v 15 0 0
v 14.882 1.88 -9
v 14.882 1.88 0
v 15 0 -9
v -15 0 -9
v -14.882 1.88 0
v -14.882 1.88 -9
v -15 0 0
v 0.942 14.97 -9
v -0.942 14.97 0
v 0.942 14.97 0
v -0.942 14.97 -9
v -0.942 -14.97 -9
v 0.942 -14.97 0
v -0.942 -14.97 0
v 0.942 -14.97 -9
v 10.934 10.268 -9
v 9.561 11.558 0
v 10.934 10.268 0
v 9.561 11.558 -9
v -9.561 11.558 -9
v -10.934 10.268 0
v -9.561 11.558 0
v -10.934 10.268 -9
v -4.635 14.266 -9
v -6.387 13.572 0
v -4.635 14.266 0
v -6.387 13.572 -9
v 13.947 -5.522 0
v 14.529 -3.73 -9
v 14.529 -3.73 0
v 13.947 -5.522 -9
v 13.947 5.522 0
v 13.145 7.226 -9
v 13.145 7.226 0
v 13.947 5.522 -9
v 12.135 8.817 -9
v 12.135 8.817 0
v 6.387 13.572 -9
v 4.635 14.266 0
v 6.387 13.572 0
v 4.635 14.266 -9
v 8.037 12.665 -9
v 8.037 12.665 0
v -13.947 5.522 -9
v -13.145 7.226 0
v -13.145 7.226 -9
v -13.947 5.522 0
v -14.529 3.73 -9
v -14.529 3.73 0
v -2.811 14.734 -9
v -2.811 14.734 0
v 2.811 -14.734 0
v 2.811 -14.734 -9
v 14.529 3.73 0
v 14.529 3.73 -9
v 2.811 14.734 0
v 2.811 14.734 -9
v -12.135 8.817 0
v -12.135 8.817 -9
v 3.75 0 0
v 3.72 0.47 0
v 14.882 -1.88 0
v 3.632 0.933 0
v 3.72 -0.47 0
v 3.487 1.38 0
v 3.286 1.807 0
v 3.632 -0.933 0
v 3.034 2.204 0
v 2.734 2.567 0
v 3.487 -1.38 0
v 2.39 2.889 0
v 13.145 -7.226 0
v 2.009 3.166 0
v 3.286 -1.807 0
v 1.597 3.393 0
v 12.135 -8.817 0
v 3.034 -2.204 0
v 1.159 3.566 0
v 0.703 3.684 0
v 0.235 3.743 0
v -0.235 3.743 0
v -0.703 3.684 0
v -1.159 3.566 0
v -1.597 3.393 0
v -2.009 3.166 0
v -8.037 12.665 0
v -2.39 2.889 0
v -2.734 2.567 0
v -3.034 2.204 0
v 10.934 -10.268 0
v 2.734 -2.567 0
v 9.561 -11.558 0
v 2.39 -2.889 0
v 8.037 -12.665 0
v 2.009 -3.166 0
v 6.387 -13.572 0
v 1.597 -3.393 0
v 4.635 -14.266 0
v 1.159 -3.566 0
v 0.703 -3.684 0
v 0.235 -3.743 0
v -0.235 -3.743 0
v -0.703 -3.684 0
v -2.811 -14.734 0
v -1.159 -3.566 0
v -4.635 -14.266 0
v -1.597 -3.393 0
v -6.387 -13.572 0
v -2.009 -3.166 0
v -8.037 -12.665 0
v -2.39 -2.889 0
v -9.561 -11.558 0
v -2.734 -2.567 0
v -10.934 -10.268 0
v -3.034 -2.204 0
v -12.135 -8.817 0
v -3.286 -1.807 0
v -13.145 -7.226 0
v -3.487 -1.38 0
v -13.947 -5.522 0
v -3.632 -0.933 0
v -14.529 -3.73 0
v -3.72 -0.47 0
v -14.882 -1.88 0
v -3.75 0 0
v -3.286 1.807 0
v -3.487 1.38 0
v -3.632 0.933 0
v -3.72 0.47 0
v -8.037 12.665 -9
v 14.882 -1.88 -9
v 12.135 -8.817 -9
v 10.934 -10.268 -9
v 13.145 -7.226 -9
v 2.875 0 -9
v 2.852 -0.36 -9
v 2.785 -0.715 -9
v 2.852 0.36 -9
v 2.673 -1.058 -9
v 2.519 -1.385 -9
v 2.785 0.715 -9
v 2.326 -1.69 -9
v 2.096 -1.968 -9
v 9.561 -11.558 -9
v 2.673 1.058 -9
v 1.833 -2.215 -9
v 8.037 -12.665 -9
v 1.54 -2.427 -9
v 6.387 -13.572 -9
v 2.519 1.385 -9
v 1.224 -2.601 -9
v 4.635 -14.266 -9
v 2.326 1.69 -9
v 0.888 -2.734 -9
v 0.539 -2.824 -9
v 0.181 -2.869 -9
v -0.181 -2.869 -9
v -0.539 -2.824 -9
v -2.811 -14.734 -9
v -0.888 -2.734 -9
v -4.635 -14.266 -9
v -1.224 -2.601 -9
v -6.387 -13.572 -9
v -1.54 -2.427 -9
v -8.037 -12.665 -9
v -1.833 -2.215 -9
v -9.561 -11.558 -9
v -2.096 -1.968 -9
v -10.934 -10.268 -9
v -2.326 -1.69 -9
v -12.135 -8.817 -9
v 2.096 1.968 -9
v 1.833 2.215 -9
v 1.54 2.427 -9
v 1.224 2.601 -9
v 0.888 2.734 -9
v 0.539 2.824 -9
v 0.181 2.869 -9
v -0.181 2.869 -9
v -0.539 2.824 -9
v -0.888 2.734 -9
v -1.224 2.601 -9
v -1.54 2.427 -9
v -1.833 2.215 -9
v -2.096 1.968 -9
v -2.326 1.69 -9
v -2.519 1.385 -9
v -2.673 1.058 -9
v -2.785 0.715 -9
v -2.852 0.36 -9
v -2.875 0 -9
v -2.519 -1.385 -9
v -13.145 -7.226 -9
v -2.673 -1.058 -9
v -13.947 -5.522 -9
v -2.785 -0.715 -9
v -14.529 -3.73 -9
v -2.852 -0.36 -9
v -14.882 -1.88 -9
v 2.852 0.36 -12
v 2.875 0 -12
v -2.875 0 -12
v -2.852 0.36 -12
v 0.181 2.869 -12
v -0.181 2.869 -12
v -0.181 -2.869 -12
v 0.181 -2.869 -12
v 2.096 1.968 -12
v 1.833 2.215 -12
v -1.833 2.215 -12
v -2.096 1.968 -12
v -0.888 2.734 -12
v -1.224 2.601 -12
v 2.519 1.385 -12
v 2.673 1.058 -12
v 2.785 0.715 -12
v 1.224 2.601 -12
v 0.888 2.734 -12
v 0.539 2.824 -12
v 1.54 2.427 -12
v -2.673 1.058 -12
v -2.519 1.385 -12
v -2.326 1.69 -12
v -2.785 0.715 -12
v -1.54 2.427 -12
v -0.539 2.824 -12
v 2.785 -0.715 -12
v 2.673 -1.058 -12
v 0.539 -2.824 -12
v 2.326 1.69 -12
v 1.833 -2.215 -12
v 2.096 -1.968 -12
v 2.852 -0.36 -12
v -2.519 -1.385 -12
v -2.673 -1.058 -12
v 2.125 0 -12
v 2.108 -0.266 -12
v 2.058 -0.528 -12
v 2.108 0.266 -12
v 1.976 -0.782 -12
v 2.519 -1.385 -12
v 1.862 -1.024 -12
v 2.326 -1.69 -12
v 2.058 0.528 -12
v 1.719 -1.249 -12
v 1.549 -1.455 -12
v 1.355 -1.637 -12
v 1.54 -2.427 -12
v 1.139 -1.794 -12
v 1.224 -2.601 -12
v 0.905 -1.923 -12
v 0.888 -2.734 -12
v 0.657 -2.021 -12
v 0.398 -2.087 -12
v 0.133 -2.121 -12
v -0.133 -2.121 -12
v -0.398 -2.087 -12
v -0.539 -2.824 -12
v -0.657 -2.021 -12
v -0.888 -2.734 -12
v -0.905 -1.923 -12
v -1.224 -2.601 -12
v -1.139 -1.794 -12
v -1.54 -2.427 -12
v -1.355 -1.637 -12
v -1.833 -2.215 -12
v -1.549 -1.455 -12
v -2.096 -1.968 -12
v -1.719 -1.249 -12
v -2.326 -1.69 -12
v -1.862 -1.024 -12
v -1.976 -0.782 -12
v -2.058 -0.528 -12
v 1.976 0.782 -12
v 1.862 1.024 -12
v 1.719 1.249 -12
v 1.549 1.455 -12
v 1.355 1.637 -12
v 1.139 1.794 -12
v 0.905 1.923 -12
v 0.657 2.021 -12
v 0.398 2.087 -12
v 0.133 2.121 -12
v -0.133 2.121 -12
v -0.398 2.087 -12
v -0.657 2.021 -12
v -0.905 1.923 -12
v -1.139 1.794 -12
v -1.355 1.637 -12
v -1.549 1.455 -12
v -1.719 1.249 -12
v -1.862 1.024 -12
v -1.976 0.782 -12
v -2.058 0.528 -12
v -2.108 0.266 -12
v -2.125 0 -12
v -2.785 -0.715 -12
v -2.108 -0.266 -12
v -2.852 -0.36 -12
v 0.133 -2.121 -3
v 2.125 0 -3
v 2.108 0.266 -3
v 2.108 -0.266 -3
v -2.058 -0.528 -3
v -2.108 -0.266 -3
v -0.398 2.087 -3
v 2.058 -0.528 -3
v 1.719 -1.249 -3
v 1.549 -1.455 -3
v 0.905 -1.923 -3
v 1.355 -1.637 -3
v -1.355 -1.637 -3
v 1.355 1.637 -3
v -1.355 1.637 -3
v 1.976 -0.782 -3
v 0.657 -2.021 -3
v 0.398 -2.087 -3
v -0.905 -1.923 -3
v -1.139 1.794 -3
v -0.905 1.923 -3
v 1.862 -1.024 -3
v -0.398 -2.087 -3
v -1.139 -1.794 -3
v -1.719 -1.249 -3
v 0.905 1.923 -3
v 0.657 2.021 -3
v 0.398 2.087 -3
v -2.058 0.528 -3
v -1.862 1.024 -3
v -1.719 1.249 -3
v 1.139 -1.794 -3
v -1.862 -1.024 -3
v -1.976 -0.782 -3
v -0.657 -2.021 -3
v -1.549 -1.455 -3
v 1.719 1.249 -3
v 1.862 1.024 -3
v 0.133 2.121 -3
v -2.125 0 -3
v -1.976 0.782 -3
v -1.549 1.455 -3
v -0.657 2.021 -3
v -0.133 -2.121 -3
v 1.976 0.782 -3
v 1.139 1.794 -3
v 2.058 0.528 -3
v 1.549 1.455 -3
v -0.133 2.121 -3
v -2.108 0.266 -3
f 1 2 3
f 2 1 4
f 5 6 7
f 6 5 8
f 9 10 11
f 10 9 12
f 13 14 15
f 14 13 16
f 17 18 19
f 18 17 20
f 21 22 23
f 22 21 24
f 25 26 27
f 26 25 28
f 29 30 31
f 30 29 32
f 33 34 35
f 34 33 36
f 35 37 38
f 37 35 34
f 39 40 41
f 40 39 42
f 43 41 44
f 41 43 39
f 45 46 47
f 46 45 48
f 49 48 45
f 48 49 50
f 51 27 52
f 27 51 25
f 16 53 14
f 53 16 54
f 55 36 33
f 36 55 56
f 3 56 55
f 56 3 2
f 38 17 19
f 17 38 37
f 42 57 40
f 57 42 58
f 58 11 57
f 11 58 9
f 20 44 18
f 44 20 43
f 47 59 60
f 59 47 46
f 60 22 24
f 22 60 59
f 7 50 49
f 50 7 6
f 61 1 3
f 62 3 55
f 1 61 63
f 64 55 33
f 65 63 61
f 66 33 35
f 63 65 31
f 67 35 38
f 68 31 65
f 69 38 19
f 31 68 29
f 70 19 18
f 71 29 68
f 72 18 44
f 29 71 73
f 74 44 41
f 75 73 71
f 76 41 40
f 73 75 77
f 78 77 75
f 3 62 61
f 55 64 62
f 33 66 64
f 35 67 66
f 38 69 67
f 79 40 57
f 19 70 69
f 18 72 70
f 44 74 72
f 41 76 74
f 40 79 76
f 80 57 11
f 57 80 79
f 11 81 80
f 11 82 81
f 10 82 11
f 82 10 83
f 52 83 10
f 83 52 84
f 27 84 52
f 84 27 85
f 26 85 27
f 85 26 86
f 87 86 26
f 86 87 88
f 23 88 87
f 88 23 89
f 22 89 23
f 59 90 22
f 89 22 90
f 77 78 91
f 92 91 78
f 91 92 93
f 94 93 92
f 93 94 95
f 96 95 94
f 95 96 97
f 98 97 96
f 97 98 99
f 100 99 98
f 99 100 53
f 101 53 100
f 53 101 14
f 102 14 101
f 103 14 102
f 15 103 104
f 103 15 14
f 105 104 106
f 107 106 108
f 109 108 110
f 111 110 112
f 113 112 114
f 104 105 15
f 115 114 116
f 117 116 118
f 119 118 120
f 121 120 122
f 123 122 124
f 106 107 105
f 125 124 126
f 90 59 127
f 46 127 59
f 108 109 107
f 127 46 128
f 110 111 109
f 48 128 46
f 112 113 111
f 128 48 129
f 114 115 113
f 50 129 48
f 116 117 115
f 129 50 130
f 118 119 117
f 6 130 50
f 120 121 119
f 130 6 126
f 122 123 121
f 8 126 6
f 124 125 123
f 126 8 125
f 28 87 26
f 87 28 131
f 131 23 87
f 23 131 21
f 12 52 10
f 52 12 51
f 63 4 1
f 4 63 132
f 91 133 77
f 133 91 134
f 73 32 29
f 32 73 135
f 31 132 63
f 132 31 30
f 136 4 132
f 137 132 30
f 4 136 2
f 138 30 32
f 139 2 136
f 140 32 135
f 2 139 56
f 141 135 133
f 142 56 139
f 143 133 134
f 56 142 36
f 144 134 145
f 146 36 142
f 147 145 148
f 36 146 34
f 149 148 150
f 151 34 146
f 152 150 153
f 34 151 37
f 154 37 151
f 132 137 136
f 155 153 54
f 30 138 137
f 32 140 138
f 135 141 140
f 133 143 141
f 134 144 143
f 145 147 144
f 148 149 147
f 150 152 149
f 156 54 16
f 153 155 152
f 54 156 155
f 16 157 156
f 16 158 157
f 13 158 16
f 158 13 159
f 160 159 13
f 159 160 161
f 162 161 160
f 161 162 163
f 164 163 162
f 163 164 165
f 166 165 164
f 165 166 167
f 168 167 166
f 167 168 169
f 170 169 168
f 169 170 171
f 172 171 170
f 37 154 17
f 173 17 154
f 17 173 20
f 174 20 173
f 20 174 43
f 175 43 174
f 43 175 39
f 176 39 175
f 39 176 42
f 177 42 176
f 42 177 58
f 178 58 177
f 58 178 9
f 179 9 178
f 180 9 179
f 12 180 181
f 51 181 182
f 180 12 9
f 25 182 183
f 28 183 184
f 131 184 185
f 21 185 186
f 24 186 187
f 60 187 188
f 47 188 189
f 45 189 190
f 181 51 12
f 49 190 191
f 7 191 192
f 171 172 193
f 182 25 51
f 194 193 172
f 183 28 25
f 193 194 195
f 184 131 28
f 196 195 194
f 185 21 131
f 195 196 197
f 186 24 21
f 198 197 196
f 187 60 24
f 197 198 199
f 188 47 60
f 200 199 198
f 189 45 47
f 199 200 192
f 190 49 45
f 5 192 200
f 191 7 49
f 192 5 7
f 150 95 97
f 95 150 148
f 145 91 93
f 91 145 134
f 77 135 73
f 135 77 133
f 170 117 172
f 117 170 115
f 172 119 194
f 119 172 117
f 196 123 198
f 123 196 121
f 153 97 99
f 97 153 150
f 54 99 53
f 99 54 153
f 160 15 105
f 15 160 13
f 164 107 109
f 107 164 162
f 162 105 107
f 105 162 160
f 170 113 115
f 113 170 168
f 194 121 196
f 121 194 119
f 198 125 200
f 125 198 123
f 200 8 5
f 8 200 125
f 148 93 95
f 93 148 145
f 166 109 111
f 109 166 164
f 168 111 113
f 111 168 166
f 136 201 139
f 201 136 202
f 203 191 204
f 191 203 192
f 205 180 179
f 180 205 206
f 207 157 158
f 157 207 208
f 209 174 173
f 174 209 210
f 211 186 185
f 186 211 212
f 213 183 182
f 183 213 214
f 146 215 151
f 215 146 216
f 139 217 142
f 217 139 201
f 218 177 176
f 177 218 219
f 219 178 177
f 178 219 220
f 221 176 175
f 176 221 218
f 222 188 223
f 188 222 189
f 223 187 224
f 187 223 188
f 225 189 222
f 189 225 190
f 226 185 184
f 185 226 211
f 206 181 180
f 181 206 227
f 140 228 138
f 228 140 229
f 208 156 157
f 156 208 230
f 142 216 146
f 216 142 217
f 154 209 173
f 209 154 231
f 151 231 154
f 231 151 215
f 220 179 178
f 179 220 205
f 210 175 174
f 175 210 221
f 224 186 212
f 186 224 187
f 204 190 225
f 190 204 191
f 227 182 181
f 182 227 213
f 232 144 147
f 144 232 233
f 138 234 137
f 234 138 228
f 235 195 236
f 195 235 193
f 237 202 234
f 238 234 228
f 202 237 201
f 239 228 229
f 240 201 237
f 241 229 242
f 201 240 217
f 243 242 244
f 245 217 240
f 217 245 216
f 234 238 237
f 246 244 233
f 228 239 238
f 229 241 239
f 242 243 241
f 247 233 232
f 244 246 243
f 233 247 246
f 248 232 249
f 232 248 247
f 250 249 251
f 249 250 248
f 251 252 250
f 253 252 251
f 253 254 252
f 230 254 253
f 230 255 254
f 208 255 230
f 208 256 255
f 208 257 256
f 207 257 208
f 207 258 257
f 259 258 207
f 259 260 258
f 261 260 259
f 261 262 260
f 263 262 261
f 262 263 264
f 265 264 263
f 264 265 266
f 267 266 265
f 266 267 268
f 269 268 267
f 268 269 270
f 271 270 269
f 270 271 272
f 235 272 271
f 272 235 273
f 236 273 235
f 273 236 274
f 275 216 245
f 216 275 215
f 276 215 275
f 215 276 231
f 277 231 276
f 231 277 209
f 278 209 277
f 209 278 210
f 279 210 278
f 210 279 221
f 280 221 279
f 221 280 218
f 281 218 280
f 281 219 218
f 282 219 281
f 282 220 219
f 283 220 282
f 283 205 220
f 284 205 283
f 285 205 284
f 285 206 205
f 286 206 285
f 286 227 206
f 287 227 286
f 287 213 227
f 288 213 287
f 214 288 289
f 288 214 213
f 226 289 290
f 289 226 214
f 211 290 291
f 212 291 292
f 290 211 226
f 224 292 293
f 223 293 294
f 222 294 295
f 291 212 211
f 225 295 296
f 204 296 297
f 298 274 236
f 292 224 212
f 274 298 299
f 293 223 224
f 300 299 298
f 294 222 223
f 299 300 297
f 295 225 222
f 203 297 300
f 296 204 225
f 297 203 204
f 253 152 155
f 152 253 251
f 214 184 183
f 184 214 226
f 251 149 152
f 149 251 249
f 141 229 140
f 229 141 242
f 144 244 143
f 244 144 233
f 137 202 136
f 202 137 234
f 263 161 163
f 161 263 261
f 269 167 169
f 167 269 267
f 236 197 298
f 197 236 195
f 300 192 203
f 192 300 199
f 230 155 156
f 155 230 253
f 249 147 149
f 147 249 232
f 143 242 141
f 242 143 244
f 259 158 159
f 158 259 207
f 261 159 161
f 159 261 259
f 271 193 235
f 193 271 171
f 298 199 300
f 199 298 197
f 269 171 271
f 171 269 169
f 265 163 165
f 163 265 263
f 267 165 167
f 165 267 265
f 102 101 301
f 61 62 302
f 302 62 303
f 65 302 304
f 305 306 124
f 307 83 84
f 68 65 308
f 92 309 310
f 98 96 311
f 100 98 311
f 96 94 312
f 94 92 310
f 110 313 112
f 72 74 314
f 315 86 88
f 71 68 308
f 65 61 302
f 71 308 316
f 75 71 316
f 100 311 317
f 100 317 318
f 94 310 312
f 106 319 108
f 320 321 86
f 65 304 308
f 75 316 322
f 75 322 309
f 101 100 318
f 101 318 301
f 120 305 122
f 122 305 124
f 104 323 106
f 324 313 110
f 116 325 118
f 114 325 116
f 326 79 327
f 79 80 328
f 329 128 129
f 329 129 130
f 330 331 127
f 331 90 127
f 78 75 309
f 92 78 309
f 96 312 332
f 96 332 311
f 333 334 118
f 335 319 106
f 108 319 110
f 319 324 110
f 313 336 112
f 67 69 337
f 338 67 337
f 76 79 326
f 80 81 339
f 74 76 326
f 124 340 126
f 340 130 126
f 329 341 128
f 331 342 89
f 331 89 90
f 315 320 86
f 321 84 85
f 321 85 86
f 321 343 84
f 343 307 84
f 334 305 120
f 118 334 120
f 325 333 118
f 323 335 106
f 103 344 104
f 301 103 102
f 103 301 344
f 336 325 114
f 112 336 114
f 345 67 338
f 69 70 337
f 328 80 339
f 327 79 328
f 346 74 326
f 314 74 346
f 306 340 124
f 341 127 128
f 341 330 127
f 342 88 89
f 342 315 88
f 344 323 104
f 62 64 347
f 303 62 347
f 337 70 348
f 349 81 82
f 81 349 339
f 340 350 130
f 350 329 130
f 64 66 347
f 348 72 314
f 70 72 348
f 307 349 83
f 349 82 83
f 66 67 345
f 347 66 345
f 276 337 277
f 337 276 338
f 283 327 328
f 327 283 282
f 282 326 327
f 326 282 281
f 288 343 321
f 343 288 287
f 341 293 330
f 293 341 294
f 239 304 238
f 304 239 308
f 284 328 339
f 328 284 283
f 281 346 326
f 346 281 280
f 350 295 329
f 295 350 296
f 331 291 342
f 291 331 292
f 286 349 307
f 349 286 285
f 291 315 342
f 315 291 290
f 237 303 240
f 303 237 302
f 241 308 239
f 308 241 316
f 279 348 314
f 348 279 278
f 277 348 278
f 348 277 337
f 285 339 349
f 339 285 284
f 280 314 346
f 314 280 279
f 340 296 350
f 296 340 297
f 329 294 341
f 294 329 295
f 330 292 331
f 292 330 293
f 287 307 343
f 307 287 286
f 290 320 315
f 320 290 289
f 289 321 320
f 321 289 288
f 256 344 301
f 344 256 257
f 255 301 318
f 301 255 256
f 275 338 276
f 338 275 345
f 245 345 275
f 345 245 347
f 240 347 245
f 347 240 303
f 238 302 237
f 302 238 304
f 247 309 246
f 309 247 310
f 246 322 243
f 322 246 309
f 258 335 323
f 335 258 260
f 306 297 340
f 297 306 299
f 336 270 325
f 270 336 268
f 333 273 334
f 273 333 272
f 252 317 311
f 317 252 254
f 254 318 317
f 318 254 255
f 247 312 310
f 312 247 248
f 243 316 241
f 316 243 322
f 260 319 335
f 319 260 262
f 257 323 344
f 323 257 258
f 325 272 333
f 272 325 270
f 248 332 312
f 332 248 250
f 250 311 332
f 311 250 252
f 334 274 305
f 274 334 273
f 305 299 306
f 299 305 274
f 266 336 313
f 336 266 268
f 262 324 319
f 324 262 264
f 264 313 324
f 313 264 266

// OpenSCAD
$fn = 50;


difference() {
	union() {
		translate(v = [0, 0, -9.0000000000]) {
			cylinder(h = 9, r = 15.0000000000);
		}
		translate(v = [0, 0, -12.0000000000]) {
			cylinder(h = 12, r = 2.8750000000);
		}
	}
	union() {
		translate(v = [0, 0, 0]) {
			rotate(a = [0, 0, 0]) {
				difference() {
					union() {
						translate(v = [0, 0, -12.0000000000]) {
							cylinder(h = 12, r = 2.0000000000);
						}
						translate(v = [0, 0, -3]) {
							cylinder(h = 3, r1 = 2.1250000000, r2 = 3.7500000000);
						}
						translate(v = [0, 0, -12.0000000000]) {
							cylinder(h = 12, r = 2.1250000000);
						}
						translate(v = [0, 0, -12.0000000000]) {
							cylinder(h = 12, r = 2.0000000000);
						}
					}
					union();
				}
			}
		}
	}
}
